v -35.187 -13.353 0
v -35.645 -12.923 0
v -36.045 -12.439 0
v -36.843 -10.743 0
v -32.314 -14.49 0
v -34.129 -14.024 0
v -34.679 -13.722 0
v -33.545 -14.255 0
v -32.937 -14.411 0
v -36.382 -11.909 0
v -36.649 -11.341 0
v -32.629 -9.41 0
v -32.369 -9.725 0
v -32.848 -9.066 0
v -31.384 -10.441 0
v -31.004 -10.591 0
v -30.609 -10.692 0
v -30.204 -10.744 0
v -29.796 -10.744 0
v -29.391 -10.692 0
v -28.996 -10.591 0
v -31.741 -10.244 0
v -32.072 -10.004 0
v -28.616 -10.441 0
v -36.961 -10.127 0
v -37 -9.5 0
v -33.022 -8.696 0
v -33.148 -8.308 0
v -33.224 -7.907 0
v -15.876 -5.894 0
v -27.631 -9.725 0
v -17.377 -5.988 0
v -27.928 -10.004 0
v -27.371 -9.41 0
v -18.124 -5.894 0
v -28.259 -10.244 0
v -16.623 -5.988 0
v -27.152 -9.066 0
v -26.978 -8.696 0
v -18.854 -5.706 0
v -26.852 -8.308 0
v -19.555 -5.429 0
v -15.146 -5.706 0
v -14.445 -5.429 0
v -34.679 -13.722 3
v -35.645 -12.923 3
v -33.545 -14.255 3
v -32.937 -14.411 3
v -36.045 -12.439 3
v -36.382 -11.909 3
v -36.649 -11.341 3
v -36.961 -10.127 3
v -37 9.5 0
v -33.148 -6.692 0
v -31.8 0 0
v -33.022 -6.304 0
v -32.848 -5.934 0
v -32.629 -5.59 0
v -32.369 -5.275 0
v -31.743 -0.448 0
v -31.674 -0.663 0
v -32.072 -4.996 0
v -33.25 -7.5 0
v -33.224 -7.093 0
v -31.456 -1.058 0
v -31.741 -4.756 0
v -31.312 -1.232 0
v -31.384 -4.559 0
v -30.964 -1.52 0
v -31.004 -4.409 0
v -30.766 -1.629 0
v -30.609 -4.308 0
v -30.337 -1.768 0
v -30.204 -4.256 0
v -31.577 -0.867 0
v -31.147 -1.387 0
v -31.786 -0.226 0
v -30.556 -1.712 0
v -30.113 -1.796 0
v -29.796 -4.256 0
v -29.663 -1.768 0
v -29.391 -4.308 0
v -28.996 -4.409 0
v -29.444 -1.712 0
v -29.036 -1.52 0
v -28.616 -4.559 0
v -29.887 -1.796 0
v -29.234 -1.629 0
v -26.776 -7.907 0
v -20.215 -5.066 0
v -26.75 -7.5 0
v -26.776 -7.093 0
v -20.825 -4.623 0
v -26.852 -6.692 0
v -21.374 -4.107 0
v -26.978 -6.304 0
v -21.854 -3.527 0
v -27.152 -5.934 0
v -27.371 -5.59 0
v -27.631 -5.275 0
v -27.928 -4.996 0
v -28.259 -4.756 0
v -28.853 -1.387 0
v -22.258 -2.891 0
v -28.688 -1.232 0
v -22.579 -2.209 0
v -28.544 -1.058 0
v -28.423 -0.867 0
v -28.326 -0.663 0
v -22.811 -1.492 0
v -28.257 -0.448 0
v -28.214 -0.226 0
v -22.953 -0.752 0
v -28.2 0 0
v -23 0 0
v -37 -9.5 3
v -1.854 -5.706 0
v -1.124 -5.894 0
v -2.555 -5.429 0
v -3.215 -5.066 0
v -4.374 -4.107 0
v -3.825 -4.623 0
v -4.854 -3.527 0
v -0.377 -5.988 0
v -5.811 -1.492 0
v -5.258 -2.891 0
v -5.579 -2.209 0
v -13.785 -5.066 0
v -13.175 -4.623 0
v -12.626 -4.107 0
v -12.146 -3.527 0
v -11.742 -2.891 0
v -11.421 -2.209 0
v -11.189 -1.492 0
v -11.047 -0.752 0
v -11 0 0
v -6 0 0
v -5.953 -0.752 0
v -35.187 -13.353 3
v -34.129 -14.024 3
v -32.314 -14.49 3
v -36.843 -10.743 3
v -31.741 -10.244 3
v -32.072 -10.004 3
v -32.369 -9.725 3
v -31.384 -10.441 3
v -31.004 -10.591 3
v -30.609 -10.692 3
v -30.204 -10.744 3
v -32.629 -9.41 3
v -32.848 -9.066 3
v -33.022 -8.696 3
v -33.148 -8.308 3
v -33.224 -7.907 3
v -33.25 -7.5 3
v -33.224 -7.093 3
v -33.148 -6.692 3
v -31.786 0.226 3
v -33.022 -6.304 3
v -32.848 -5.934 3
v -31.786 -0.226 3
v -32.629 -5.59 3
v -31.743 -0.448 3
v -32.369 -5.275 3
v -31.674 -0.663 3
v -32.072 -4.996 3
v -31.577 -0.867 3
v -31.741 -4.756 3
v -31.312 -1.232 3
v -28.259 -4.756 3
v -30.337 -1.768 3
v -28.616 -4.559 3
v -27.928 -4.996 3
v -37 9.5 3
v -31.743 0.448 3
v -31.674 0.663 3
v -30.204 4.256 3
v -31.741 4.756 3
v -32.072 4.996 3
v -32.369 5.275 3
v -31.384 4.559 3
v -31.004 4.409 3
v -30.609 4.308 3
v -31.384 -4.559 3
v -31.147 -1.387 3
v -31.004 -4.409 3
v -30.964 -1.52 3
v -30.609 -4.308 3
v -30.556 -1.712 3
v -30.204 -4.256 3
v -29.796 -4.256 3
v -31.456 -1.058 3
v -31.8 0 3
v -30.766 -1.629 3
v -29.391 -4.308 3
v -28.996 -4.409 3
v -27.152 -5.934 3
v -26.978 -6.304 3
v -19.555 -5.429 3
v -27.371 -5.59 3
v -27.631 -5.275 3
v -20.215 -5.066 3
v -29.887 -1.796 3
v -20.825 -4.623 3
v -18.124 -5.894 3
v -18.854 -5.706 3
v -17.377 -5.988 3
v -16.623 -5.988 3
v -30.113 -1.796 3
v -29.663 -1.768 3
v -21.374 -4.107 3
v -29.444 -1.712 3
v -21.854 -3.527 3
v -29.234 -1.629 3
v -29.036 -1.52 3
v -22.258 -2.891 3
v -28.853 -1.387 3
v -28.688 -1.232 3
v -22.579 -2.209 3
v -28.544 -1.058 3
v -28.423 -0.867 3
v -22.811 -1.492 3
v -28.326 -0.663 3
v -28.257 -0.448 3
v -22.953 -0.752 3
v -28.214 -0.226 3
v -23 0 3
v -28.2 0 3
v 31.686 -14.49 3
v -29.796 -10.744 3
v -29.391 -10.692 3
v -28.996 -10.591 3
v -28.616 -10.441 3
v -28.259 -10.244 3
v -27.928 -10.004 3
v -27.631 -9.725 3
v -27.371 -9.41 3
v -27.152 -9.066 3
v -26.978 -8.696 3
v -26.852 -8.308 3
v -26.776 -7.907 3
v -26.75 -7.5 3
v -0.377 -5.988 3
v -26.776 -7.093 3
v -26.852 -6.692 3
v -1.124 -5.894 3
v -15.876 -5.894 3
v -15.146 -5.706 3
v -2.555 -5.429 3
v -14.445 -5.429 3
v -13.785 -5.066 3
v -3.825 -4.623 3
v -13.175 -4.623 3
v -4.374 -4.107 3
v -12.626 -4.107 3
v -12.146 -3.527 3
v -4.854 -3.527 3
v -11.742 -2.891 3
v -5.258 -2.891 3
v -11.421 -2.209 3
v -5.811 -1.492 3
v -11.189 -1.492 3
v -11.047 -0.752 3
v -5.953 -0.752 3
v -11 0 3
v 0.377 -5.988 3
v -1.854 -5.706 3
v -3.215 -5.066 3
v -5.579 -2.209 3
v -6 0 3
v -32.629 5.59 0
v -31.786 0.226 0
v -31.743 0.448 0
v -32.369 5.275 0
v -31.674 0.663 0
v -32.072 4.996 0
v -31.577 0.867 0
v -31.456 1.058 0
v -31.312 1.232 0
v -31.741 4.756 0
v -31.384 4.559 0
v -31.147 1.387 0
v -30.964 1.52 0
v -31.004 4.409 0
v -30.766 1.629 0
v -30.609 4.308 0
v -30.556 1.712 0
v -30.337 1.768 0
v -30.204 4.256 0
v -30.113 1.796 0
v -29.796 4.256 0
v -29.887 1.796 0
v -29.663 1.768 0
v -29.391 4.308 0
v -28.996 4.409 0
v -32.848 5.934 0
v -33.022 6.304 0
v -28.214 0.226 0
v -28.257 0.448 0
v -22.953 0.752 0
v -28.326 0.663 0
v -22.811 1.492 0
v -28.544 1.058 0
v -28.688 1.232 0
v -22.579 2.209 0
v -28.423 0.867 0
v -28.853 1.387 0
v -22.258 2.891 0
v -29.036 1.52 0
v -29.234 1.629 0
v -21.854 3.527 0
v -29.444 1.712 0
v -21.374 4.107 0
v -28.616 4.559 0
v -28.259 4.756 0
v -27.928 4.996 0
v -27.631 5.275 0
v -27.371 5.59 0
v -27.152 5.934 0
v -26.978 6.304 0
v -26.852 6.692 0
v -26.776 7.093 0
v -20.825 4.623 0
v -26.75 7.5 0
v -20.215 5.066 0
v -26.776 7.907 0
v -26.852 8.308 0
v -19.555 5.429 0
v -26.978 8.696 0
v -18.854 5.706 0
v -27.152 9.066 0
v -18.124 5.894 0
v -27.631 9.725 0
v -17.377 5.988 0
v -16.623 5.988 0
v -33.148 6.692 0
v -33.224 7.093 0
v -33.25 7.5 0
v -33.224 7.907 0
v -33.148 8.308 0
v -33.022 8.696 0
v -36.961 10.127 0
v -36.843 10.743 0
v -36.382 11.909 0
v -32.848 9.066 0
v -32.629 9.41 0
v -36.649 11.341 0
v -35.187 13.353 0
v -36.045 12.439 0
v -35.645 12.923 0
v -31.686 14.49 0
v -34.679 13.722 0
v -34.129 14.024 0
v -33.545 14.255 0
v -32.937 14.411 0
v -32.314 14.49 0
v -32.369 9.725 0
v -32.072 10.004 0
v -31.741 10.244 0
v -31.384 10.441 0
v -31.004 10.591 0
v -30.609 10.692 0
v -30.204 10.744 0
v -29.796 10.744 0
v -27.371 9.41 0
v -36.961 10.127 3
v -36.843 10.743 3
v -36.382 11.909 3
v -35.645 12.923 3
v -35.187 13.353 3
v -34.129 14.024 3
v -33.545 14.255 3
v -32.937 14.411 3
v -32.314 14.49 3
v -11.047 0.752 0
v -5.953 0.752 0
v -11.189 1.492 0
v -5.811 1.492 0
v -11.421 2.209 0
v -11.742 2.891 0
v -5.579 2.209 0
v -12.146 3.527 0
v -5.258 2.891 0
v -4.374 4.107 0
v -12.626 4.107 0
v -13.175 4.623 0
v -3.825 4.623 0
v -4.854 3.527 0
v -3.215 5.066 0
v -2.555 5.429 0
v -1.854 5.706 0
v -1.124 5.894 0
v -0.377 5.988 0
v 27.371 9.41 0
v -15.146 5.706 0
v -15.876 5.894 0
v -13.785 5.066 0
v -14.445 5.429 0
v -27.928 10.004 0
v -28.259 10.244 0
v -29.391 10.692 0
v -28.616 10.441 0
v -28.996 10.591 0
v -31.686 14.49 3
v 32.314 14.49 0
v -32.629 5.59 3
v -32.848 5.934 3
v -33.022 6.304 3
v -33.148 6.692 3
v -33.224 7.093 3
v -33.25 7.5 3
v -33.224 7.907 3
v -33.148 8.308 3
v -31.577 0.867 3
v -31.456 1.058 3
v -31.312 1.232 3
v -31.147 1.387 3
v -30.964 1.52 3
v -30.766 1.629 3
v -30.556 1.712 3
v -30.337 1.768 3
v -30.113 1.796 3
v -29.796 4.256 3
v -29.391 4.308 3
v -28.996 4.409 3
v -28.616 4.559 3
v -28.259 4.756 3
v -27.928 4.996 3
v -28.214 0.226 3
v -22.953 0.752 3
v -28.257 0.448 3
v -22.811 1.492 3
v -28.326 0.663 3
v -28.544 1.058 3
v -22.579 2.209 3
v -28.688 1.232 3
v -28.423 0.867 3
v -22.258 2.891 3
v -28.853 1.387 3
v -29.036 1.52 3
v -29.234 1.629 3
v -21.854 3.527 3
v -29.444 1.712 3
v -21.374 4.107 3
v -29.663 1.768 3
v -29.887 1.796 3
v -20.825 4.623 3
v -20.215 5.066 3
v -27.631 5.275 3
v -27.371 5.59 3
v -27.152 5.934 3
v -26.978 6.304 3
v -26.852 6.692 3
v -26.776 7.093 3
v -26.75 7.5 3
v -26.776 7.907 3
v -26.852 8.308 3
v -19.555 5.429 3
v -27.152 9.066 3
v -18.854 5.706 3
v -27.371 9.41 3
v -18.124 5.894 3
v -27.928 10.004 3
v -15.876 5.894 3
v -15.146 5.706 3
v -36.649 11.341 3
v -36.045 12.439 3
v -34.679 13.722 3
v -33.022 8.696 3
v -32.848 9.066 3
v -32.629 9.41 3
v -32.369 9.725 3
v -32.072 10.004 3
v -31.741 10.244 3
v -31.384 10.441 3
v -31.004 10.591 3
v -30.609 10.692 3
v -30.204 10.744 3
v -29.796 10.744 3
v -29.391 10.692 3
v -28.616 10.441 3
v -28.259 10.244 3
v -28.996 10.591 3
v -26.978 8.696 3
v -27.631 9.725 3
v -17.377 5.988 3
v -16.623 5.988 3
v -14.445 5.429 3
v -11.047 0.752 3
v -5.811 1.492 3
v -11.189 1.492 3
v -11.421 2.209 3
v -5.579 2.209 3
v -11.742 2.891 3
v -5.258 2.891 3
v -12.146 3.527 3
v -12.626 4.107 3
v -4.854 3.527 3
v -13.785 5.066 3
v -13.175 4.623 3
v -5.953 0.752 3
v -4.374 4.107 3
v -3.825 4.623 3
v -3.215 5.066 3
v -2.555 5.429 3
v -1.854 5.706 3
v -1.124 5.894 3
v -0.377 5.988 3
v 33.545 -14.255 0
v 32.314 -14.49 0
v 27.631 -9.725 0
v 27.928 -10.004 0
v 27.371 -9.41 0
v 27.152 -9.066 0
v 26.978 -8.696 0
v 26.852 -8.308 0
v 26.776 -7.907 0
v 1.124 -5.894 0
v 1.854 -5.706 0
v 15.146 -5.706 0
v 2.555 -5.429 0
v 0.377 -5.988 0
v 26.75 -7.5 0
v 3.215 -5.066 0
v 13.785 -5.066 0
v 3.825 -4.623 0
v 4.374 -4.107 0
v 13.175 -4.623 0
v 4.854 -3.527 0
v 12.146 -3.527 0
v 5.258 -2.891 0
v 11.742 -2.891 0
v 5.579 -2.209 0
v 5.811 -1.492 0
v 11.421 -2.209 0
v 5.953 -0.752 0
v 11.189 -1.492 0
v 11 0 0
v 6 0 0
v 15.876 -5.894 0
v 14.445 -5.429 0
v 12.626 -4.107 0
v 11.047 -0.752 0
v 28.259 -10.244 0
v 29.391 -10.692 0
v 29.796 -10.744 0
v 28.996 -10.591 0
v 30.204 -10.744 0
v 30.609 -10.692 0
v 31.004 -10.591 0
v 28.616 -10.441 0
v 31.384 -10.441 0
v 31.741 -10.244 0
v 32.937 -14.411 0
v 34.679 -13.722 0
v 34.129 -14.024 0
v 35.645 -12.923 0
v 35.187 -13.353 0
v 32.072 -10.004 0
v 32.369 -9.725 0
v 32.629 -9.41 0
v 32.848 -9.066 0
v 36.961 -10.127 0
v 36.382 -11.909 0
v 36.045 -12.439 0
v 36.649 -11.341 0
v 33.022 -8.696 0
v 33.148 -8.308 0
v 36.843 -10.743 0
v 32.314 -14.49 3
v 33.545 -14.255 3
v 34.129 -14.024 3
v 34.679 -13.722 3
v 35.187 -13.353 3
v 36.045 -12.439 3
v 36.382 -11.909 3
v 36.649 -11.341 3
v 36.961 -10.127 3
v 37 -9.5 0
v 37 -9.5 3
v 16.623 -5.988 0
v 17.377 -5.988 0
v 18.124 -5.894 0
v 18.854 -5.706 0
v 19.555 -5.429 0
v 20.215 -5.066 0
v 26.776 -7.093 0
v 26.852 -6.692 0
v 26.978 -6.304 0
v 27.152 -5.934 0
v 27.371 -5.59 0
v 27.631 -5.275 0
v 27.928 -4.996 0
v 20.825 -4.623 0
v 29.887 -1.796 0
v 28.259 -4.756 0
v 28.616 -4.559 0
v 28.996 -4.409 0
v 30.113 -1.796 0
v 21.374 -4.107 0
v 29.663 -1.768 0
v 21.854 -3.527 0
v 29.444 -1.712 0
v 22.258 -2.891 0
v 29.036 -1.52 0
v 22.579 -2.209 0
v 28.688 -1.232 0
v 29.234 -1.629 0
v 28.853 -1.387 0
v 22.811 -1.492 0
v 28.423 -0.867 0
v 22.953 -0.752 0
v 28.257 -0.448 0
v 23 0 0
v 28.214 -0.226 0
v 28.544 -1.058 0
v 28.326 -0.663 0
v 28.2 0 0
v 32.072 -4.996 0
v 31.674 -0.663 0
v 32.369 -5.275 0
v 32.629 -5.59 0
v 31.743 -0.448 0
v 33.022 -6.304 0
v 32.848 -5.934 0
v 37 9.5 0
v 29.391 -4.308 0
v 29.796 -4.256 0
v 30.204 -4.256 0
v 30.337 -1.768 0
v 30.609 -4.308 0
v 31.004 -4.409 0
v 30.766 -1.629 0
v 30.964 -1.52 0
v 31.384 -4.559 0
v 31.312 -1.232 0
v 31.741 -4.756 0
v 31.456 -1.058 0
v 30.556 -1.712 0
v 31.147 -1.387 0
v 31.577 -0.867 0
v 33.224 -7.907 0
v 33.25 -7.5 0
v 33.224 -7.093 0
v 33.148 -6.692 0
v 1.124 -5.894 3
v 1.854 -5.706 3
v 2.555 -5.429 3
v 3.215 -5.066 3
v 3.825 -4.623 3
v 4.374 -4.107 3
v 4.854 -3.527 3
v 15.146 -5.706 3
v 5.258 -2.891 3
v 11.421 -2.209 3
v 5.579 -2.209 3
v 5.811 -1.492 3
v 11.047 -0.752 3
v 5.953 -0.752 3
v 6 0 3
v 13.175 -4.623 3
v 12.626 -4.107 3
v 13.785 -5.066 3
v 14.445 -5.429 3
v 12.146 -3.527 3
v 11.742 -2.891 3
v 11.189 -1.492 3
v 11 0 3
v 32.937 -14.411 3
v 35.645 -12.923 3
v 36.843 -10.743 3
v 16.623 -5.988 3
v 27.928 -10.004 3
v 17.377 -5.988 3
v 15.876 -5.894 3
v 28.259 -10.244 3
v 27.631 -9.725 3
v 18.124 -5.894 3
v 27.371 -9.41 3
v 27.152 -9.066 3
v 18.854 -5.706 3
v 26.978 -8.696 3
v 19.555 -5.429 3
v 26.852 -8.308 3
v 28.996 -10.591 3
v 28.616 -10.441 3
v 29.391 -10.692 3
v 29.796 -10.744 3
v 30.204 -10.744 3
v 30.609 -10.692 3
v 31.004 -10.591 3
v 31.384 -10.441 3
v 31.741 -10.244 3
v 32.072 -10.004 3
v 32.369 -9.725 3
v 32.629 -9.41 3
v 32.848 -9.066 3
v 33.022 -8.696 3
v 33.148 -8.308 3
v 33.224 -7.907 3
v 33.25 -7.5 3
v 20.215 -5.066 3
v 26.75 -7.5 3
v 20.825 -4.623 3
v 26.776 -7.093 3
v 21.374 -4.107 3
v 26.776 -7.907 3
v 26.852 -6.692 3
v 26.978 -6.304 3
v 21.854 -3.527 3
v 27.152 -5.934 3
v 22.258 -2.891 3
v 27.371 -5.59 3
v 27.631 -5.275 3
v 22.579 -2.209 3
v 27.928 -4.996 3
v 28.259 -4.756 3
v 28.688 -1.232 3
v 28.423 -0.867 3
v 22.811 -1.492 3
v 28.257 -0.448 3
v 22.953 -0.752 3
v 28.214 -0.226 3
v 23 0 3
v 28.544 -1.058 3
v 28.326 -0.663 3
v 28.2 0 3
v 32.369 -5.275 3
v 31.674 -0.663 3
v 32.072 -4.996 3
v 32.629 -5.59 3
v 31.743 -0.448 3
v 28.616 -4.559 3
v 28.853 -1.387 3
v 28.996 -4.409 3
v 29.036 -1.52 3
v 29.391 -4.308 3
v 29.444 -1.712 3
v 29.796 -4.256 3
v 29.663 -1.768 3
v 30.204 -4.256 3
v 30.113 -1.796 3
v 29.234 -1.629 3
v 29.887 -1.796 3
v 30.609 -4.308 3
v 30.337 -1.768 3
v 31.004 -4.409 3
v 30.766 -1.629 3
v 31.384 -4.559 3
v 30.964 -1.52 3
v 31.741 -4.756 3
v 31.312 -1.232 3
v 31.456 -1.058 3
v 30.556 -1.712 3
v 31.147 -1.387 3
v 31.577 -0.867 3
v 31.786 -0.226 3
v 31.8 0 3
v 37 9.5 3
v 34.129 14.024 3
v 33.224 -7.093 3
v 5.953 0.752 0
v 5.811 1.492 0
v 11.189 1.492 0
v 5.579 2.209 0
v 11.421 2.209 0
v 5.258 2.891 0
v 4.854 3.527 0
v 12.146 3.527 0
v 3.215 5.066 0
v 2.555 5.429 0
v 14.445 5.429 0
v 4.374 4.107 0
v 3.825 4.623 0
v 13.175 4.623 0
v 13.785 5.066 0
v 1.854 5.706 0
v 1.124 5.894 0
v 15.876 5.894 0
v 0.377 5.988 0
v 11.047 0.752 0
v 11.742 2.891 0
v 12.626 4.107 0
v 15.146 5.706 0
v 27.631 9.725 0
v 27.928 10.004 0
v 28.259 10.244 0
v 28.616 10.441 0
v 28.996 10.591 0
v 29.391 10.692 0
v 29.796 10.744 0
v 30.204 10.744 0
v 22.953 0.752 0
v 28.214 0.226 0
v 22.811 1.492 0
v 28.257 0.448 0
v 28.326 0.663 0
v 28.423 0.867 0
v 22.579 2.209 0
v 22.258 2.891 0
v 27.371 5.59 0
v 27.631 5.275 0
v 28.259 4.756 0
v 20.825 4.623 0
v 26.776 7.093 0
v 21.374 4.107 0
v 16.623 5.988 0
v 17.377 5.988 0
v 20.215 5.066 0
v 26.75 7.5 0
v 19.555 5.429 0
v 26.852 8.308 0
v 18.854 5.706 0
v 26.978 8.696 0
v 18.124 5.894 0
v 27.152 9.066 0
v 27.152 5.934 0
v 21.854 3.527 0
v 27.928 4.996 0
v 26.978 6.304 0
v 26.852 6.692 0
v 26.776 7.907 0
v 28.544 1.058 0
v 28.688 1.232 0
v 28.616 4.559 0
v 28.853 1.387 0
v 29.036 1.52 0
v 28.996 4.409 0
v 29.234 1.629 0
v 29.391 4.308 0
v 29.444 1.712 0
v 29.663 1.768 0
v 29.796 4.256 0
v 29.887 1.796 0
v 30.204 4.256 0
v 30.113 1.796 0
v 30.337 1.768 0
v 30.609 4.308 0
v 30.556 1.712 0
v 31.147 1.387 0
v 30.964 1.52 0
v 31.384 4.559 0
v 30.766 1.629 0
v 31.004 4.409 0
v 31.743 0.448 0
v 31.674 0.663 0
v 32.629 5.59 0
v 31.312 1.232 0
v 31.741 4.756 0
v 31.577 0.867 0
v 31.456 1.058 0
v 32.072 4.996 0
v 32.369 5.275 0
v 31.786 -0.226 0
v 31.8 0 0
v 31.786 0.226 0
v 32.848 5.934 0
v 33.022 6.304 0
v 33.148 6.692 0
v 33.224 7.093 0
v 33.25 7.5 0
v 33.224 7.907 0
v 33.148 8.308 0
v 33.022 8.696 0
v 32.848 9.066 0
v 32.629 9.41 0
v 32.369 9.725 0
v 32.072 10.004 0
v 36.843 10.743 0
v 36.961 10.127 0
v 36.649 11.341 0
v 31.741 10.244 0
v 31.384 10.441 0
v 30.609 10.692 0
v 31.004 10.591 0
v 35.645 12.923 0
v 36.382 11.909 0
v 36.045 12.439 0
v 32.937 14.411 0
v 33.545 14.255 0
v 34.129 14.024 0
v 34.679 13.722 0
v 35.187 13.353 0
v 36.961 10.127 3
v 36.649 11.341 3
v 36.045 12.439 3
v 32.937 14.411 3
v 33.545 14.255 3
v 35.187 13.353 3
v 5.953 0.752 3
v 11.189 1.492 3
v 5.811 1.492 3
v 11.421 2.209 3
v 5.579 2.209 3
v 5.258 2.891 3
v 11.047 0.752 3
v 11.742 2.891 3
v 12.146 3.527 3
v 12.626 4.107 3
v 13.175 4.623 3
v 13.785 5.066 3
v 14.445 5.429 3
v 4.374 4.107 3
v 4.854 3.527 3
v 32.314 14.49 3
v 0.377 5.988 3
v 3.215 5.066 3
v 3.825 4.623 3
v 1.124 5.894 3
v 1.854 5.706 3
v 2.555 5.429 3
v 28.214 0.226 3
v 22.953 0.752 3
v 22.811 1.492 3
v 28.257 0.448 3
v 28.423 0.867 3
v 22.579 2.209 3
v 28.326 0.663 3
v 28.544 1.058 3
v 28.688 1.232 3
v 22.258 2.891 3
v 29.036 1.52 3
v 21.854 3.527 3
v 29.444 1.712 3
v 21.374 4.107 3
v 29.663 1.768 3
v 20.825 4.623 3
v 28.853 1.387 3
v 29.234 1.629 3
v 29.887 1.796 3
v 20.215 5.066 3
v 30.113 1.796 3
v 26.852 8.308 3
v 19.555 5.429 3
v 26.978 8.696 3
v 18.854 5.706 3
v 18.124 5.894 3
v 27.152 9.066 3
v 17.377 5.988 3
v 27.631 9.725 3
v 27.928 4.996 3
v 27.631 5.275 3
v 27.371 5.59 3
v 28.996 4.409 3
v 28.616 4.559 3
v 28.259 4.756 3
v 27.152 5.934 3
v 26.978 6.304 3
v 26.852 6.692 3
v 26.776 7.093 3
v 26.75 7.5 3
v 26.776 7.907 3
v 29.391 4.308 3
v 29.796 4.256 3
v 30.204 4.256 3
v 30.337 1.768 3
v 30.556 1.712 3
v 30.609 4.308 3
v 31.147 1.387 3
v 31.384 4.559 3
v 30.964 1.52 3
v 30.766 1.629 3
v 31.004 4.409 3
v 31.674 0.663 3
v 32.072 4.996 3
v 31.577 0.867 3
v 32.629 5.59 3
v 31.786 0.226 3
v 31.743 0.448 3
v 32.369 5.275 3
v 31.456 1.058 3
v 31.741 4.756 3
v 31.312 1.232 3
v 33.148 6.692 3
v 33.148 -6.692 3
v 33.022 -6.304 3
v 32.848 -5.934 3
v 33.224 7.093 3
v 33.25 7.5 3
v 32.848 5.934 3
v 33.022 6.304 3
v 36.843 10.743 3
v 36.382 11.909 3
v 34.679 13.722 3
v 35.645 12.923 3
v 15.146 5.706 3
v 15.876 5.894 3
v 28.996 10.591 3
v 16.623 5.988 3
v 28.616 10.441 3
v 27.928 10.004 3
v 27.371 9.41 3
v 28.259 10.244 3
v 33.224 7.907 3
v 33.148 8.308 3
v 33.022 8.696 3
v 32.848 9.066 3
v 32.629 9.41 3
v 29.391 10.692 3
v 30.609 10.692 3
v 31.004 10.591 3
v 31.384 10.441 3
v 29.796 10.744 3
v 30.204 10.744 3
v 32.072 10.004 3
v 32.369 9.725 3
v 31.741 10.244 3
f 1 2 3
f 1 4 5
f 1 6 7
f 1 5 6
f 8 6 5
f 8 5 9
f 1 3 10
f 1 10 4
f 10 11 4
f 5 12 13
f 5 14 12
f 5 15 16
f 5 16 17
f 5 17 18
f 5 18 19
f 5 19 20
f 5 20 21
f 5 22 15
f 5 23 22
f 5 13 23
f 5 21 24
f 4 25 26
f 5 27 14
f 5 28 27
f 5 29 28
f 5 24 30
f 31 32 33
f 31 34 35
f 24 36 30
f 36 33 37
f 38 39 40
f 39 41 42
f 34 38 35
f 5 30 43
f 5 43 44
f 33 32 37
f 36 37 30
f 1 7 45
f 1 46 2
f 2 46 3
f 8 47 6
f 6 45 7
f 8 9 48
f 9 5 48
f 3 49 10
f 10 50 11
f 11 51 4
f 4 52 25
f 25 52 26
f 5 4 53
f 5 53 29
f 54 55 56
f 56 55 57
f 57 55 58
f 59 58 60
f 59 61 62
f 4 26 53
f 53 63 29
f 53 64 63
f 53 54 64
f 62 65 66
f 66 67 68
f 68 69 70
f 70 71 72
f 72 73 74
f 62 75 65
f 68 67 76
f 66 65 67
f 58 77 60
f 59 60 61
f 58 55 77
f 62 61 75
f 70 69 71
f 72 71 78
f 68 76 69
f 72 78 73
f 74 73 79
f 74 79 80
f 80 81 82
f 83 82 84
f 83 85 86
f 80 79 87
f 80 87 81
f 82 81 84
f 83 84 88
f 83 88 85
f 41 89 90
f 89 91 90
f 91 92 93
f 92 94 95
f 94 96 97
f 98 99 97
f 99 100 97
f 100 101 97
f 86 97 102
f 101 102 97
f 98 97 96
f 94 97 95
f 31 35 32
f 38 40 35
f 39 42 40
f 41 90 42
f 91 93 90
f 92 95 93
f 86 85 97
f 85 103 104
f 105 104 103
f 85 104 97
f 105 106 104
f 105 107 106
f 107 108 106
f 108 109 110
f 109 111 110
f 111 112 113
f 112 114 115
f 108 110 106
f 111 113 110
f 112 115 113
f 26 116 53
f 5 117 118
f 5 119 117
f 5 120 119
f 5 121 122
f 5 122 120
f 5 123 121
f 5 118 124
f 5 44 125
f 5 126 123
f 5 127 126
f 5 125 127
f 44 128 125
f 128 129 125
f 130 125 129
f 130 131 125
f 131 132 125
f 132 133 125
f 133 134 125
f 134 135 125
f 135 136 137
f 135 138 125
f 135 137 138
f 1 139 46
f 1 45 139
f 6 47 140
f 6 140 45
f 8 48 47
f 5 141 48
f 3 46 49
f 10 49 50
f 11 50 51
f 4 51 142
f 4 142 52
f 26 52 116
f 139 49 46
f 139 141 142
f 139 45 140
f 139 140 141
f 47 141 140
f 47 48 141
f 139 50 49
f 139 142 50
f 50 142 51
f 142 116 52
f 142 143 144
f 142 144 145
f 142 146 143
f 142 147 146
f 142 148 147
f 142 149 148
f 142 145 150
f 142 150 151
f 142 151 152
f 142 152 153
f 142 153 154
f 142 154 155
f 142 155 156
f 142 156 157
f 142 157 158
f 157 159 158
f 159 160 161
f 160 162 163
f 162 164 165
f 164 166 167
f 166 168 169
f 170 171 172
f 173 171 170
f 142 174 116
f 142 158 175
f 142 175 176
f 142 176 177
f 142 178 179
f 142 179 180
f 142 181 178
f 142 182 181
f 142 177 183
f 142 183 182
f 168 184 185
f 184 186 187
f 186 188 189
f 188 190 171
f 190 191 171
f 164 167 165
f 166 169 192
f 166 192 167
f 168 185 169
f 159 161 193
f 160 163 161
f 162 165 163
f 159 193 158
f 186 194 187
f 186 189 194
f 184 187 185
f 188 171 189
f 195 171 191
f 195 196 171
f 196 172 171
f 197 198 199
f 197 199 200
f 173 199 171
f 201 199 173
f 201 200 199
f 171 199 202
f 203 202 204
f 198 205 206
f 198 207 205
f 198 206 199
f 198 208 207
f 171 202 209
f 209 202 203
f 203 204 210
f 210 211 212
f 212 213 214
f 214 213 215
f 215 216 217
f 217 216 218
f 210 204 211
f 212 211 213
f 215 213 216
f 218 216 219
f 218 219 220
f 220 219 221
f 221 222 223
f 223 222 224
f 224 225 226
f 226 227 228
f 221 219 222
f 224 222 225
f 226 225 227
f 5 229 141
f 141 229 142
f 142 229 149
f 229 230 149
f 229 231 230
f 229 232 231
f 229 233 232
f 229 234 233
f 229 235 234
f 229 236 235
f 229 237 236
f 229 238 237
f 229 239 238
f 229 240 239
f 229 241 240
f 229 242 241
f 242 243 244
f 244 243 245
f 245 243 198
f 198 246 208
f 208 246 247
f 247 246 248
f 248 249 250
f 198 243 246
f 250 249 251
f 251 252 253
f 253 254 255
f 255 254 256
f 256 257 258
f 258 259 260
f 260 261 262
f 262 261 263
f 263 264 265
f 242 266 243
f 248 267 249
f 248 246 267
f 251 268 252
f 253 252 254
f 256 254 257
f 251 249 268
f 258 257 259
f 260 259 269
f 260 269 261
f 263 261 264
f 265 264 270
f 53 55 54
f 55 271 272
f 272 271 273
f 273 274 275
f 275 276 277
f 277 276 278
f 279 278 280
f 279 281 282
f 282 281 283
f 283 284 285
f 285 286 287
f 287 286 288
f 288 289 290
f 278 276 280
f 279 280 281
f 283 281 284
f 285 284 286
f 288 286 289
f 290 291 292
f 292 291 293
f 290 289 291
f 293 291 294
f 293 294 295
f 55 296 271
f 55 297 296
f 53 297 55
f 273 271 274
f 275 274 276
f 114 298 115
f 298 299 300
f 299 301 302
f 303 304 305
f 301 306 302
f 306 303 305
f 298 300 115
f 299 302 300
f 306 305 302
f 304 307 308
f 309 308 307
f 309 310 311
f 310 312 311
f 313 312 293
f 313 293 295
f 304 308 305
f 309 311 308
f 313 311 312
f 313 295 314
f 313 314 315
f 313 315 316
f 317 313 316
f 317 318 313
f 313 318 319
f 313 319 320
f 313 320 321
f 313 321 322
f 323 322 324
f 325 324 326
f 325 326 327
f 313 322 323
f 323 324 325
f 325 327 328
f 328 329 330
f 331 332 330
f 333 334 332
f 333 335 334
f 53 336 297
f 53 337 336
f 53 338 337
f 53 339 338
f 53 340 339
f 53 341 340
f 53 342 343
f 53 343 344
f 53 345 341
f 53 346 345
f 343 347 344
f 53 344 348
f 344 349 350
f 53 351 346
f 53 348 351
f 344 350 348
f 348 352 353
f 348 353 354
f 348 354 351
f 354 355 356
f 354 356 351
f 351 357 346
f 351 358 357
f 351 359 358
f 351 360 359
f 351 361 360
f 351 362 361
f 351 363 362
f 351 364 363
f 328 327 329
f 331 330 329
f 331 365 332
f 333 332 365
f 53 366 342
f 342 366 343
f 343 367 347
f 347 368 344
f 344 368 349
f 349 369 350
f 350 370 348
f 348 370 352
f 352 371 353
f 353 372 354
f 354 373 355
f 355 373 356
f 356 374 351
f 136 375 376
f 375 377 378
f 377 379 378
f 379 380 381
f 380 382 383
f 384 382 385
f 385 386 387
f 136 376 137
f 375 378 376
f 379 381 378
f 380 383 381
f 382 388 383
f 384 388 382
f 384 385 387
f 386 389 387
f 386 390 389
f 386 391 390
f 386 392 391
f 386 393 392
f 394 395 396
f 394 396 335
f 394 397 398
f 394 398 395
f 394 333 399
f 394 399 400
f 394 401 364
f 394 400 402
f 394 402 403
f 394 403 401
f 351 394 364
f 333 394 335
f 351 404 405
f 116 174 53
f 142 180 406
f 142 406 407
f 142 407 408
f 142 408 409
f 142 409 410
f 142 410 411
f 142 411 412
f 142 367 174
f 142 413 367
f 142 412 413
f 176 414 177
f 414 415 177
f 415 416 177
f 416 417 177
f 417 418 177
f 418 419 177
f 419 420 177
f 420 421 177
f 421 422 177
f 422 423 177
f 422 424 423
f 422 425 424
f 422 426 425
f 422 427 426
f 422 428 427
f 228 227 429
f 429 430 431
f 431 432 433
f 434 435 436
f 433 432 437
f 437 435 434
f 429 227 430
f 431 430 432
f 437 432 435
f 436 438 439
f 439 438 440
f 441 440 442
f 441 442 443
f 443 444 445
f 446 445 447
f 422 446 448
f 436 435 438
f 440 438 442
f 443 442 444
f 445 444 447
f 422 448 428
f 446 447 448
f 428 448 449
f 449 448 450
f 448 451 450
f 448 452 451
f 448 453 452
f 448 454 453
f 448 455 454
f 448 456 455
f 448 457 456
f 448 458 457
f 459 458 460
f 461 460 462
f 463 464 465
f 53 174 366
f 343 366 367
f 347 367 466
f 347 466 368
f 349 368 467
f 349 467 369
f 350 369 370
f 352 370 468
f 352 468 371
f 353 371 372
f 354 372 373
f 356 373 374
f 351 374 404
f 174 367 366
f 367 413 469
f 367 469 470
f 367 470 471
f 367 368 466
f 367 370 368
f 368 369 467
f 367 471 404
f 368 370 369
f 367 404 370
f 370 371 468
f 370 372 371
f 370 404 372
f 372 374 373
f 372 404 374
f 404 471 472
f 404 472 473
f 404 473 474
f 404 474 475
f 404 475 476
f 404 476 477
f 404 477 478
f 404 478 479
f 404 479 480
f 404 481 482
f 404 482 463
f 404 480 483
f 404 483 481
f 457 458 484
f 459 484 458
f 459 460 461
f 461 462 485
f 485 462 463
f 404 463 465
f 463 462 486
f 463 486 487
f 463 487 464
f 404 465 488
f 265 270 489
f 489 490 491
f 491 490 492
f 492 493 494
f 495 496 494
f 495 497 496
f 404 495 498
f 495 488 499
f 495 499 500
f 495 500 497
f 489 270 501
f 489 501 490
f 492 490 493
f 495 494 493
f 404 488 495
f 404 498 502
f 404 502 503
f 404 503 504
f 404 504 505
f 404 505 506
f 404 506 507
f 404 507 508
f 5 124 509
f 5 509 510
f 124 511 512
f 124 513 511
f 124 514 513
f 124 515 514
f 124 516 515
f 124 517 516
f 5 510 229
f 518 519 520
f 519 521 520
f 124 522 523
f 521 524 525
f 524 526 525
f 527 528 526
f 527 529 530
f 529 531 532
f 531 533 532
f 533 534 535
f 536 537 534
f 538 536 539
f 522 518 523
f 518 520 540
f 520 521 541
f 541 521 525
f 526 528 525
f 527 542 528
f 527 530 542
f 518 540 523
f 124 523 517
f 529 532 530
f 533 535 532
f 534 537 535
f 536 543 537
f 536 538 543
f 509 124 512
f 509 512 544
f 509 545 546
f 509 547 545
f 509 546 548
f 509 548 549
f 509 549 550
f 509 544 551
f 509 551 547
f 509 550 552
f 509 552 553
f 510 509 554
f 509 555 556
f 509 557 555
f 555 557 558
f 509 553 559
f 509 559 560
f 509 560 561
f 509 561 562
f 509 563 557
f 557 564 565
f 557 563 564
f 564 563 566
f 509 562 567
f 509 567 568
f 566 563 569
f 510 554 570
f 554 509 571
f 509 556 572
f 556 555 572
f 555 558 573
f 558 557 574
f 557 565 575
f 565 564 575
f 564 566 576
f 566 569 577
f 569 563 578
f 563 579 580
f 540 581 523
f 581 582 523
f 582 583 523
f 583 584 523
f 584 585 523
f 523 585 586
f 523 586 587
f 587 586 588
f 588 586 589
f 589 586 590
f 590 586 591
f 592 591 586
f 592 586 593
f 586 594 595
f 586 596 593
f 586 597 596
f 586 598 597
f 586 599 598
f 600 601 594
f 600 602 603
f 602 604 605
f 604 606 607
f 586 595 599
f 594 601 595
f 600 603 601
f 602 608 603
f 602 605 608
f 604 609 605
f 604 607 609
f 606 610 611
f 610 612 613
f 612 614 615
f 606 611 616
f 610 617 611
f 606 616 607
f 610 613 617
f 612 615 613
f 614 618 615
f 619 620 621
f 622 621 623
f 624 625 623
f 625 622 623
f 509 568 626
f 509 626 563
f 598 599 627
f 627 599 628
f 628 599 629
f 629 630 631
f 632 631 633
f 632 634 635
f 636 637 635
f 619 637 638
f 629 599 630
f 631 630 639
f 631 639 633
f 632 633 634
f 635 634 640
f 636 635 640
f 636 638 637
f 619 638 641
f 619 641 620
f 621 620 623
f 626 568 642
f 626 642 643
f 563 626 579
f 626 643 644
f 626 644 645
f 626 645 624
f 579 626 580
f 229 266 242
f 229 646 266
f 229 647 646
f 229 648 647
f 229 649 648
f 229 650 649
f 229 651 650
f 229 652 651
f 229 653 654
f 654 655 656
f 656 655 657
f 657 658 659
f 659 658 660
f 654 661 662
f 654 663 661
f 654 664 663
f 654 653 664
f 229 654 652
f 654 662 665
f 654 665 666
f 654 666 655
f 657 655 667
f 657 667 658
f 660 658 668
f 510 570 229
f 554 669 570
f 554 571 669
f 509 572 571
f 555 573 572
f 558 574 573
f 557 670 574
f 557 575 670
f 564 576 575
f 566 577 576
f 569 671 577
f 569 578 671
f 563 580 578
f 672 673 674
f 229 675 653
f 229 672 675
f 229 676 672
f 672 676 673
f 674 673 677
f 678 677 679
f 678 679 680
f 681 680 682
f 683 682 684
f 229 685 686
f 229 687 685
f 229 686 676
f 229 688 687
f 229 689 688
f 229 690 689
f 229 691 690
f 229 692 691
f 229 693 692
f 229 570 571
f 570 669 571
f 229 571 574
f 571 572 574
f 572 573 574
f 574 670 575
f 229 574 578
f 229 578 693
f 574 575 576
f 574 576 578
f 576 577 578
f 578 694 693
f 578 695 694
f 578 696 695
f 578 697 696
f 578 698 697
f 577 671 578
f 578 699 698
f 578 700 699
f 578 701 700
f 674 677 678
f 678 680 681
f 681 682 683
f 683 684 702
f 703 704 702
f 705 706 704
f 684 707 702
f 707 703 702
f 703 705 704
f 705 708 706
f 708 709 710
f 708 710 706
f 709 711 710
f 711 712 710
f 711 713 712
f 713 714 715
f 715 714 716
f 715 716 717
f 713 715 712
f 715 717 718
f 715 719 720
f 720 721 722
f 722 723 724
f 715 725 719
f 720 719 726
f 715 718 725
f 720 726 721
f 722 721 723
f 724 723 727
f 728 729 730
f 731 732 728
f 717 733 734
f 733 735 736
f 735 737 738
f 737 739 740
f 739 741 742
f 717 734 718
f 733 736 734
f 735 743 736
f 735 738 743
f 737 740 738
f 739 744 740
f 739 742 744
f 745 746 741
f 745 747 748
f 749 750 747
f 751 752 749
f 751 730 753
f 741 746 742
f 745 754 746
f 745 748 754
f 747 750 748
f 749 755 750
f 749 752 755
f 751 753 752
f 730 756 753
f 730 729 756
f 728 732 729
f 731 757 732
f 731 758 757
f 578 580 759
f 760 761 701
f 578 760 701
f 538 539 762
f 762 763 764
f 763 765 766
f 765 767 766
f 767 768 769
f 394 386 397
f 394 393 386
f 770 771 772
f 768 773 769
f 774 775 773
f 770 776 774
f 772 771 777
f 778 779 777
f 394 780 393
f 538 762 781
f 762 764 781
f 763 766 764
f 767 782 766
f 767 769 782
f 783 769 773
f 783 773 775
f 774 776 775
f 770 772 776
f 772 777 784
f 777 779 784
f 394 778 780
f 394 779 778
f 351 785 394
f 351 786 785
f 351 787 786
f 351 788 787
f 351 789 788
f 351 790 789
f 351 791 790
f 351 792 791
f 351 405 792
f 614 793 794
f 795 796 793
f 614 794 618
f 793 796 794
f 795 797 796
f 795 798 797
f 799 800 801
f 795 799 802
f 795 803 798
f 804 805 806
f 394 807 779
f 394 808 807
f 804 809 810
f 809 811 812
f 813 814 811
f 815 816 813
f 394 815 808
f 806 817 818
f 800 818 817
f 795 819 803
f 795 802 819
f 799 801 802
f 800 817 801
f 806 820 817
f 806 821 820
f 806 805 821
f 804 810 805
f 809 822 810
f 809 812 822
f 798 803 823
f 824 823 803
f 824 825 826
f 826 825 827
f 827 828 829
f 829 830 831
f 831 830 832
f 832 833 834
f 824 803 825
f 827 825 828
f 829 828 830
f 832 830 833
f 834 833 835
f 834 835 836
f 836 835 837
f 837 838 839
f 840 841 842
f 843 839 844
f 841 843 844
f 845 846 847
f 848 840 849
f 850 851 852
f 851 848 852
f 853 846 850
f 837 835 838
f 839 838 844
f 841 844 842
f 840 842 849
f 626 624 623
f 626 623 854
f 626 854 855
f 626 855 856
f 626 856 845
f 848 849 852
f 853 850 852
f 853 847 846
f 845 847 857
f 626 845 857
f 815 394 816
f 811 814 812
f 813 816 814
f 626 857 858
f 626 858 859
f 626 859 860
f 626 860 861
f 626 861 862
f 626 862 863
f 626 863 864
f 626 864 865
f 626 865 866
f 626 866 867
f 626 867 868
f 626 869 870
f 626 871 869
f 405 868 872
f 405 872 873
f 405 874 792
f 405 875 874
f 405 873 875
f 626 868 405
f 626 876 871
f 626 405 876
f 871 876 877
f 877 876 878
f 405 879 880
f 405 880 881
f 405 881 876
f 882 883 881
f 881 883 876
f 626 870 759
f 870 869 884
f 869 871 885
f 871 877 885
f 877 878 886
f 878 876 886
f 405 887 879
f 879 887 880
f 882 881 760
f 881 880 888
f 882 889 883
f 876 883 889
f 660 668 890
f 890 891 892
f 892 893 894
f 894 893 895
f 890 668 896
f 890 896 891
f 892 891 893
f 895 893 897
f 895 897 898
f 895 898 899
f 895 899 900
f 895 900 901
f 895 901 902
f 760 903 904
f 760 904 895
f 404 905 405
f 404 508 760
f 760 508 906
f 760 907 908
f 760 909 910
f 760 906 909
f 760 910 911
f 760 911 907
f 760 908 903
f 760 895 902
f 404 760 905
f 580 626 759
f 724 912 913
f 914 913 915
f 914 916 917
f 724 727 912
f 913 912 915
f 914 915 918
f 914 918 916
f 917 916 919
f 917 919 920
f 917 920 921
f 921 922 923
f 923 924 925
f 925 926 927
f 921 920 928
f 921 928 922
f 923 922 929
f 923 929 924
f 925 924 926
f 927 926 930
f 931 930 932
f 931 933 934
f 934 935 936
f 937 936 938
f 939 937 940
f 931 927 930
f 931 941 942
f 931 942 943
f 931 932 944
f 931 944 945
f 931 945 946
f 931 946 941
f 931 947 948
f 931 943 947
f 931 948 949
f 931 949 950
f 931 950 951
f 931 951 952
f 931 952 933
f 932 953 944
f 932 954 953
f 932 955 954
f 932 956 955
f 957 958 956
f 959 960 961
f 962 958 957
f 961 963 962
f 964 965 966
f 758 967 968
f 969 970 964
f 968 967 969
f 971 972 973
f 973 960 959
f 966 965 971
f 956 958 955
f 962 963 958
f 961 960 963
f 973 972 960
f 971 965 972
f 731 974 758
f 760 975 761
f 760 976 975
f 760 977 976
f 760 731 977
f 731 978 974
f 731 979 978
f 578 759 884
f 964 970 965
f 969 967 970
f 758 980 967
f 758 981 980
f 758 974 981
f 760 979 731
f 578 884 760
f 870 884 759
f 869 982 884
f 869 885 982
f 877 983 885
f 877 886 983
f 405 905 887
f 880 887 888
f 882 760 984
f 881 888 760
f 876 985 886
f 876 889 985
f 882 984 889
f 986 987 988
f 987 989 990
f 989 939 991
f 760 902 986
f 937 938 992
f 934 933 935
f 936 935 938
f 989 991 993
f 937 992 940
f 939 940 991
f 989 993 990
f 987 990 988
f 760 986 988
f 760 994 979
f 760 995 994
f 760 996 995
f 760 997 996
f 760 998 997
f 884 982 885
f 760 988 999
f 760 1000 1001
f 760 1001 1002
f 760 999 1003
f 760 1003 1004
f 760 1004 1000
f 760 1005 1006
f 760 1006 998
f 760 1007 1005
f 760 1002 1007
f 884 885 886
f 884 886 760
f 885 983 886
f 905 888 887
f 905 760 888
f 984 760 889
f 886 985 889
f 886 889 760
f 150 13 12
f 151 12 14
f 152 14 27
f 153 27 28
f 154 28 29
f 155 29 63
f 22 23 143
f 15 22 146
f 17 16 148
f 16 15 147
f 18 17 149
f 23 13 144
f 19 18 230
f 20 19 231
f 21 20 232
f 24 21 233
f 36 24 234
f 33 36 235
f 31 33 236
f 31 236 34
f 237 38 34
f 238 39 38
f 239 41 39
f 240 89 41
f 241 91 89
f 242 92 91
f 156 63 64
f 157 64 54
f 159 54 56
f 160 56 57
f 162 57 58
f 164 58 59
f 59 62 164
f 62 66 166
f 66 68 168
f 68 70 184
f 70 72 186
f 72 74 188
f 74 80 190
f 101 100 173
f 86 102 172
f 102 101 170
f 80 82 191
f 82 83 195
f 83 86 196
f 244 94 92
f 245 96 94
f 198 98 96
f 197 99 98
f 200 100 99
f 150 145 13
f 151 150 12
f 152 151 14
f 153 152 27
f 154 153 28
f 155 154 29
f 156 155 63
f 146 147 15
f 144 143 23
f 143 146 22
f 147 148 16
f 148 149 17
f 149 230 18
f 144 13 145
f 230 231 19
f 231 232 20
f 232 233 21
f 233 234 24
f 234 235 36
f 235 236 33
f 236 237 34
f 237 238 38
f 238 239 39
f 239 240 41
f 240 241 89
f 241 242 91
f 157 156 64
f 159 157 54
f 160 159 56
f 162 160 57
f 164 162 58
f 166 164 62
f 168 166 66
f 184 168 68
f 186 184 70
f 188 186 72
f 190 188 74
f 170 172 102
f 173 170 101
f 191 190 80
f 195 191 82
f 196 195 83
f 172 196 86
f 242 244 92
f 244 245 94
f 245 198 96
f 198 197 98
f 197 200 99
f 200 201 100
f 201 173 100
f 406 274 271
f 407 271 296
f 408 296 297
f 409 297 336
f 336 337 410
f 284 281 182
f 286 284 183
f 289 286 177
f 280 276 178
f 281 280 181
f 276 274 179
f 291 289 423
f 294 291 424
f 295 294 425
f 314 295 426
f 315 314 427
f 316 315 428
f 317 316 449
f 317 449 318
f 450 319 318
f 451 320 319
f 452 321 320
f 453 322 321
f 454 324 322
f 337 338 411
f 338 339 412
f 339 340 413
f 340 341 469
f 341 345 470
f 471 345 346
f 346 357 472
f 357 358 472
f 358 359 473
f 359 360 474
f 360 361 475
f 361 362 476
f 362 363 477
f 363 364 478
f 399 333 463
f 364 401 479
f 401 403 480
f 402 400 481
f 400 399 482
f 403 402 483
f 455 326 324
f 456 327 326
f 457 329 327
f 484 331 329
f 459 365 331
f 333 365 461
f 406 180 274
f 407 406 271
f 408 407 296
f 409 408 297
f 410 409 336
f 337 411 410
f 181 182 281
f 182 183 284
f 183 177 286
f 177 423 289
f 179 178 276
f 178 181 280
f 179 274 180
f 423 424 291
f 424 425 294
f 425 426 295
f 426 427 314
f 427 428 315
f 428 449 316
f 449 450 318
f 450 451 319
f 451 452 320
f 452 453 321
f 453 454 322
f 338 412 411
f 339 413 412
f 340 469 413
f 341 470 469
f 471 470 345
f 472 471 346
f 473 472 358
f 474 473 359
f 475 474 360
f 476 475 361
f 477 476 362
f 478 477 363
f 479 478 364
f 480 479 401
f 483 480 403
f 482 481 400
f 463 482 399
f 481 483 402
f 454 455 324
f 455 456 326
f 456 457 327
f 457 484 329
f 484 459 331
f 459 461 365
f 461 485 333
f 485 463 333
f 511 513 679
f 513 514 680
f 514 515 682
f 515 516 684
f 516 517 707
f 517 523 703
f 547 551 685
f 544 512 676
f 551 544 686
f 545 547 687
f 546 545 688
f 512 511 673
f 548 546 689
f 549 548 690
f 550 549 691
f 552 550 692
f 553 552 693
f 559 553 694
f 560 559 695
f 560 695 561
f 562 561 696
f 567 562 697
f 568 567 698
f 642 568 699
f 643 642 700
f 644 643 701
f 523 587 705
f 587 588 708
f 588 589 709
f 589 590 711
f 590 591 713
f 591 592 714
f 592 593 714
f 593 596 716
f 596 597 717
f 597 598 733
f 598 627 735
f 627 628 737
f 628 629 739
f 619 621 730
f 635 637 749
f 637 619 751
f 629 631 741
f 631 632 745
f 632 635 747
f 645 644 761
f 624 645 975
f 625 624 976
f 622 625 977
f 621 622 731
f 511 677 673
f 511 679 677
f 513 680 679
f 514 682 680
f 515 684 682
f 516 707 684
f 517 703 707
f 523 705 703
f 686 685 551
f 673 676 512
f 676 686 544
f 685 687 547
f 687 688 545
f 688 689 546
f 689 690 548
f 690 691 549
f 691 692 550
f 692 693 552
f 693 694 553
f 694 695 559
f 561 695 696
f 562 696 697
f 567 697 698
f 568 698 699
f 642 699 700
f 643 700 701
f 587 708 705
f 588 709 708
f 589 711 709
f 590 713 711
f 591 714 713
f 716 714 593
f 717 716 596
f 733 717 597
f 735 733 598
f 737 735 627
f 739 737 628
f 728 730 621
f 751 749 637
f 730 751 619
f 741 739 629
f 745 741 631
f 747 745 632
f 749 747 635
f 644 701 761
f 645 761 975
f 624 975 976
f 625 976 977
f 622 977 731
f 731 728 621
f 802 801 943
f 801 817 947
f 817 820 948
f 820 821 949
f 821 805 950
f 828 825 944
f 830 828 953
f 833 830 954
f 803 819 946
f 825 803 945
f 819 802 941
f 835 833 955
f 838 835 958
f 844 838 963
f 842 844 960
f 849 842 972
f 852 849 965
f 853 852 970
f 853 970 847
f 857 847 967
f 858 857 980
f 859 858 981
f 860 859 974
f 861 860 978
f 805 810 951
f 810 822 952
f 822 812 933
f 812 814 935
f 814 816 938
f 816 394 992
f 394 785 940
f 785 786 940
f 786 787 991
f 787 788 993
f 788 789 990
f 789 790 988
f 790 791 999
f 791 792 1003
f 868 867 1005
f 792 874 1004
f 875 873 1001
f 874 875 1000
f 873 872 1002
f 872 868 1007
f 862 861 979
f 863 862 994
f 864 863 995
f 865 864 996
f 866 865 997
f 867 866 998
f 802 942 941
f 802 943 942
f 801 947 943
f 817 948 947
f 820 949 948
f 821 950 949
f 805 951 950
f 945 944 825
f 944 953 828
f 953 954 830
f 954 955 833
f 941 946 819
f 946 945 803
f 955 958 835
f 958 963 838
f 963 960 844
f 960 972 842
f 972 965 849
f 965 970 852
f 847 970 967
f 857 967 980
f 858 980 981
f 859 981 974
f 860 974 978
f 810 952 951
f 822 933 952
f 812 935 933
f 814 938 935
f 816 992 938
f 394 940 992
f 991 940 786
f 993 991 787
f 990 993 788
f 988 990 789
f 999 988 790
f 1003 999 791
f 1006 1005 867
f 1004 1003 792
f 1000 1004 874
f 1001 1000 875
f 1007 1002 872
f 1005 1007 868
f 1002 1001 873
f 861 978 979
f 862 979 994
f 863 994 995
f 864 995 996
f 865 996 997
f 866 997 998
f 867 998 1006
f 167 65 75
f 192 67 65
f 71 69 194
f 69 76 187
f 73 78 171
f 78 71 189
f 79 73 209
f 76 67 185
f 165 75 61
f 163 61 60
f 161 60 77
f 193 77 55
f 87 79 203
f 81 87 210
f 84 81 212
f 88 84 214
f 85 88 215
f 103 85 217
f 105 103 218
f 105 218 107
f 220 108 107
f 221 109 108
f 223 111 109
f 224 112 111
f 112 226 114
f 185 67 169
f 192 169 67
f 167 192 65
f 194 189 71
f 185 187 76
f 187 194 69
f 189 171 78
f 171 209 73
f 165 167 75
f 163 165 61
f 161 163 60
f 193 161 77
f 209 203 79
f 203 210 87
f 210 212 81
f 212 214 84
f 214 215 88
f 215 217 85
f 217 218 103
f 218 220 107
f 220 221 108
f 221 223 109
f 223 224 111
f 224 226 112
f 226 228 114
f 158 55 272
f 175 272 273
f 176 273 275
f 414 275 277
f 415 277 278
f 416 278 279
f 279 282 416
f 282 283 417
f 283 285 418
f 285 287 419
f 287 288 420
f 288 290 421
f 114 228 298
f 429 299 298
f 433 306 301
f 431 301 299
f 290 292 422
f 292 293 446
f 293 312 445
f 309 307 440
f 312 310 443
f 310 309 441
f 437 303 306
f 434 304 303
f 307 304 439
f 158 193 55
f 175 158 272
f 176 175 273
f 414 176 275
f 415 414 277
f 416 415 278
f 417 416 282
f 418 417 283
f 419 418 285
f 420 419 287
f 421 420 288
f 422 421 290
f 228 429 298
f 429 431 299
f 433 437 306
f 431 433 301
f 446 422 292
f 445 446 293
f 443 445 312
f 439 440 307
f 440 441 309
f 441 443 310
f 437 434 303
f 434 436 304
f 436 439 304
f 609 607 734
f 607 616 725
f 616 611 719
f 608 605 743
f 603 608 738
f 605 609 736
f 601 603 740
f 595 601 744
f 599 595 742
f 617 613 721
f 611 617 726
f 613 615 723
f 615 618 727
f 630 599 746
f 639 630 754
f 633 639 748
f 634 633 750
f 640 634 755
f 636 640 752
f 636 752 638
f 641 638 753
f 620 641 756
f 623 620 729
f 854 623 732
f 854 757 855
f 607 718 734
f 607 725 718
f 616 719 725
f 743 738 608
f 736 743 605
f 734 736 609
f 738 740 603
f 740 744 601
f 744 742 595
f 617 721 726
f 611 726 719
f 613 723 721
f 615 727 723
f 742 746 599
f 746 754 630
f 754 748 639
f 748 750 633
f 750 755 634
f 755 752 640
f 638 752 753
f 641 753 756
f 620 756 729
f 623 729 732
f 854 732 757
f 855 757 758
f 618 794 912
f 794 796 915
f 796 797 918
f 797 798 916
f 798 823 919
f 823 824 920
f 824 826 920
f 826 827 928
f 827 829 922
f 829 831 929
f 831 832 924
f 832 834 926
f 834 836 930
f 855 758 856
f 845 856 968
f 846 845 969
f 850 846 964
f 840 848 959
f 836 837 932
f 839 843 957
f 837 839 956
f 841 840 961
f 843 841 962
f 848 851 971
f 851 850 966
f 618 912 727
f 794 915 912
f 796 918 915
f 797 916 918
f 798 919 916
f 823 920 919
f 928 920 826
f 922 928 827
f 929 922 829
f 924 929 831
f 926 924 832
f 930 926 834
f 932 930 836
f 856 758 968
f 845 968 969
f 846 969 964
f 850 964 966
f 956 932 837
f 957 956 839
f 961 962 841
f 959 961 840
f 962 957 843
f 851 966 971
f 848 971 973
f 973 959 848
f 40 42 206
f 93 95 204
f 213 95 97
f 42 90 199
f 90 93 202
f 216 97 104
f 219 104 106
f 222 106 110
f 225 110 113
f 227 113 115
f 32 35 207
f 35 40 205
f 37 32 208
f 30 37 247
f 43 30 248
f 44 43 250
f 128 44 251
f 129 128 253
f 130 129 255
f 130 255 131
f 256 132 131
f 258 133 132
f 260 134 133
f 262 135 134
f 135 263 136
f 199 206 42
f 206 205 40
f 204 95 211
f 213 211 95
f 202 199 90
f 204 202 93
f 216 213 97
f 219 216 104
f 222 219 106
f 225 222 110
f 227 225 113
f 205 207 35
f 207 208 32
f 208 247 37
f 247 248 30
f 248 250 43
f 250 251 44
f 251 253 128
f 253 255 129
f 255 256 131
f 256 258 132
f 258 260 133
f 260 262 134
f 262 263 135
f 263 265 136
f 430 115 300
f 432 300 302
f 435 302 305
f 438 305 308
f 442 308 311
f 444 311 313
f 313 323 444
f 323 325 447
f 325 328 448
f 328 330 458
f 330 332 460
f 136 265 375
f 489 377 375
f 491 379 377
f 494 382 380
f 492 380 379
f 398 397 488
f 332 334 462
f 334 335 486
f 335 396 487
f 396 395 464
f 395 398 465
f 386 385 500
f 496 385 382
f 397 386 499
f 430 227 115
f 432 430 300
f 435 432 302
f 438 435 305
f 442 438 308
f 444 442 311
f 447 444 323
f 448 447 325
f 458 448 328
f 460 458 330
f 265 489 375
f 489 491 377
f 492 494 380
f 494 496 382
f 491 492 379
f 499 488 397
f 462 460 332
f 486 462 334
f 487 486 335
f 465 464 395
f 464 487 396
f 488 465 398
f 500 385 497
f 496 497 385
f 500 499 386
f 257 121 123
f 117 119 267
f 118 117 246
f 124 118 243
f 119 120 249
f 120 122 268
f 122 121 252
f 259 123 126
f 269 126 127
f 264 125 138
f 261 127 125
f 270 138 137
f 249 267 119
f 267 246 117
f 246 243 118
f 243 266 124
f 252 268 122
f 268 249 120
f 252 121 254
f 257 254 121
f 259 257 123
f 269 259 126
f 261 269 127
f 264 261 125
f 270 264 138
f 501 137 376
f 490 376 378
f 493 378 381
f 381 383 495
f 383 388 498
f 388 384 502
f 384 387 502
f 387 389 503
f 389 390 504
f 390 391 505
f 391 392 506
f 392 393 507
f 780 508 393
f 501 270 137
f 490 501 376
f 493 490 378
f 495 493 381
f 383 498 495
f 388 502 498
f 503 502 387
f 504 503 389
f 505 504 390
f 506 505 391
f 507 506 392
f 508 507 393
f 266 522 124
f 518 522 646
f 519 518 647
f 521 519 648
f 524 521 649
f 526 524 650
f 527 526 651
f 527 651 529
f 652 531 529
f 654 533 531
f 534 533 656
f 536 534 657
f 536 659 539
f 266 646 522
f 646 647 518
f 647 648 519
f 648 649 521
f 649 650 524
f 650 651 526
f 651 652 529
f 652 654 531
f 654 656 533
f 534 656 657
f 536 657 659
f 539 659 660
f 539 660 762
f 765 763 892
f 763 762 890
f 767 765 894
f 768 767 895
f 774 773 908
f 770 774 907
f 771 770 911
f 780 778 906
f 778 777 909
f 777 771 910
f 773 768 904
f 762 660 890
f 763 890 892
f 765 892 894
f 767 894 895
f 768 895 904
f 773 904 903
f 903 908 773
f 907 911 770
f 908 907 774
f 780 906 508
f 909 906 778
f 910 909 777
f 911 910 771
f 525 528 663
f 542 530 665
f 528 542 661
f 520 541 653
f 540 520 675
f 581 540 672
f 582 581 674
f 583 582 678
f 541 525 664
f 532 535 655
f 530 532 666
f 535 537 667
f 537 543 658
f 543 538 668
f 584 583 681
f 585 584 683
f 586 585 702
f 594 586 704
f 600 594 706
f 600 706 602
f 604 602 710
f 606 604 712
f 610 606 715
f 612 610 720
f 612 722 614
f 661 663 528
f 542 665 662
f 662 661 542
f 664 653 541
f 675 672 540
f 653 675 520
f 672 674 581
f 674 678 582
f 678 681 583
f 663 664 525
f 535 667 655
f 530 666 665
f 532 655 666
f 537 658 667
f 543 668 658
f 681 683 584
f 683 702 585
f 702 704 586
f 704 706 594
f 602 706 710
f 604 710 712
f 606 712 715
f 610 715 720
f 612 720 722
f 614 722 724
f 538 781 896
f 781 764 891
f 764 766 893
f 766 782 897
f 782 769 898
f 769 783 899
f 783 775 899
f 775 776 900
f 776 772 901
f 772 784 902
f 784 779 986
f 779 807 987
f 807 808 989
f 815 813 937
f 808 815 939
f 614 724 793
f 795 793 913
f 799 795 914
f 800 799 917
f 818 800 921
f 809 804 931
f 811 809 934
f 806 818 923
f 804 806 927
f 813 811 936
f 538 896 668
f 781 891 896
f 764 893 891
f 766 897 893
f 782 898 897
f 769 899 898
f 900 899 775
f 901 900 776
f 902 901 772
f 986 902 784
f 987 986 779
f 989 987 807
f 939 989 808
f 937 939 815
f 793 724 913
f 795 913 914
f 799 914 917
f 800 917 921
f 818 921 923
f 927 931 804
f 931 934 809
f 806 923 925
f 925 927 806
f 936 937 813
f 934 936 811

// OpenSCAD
$fn = 50;

difference() {
	union() {
		hull() {
			translate(v = [-32.0, 9.5, 0]) {
				cylinder(h = 3, r = 5);
			}
			translate(v = [32.0, 9.5, 0]) {
				cylinder(h = 3, r = 5);
			}
			translate(v = [-32.0, -9.5, 0]) {
				cylinder(h = 3, r = 5);
			}
			translate(v = [32.0, -9.5, 0]) {
				cylinder(h = 3, r = 5);
			}
		}
	}
	union() {
		translate(v = [-30.0, -7.5, 0]) {
			cylinder(h = 3, r = 3.25);
		}
		translate(v = [-30.0, 7.5, 0]) {
			cylinder(h = 3, r = 3.25);
		}
		translate(v = [30.0, -7.5, 0]) {
			cylinder(h = 3, r = 3.25);
		}
		translate(v = [30.0, 7.5, 0]) {
			cylinder(h = 3, r = 3.25);
		}
		translate(v = [-30.0, 0.0, 0]) {
			cylinder(h = 3, r = 1.8);
		}
		translate(v = [30.0, 0.0, 0]) {
			cylinder(h = 3, r = 1.8);
		}
		translate(v = [-17.0, 0, 0.0]) {
			cylinder(h = 3, r = 6.0);
		}
		cylinder(h = 3, r = 6.0);
		translate(v = [17.0, 0, 0.0]) {
			cylinder(h = 3, r = 6.0);
		}
	}
}
